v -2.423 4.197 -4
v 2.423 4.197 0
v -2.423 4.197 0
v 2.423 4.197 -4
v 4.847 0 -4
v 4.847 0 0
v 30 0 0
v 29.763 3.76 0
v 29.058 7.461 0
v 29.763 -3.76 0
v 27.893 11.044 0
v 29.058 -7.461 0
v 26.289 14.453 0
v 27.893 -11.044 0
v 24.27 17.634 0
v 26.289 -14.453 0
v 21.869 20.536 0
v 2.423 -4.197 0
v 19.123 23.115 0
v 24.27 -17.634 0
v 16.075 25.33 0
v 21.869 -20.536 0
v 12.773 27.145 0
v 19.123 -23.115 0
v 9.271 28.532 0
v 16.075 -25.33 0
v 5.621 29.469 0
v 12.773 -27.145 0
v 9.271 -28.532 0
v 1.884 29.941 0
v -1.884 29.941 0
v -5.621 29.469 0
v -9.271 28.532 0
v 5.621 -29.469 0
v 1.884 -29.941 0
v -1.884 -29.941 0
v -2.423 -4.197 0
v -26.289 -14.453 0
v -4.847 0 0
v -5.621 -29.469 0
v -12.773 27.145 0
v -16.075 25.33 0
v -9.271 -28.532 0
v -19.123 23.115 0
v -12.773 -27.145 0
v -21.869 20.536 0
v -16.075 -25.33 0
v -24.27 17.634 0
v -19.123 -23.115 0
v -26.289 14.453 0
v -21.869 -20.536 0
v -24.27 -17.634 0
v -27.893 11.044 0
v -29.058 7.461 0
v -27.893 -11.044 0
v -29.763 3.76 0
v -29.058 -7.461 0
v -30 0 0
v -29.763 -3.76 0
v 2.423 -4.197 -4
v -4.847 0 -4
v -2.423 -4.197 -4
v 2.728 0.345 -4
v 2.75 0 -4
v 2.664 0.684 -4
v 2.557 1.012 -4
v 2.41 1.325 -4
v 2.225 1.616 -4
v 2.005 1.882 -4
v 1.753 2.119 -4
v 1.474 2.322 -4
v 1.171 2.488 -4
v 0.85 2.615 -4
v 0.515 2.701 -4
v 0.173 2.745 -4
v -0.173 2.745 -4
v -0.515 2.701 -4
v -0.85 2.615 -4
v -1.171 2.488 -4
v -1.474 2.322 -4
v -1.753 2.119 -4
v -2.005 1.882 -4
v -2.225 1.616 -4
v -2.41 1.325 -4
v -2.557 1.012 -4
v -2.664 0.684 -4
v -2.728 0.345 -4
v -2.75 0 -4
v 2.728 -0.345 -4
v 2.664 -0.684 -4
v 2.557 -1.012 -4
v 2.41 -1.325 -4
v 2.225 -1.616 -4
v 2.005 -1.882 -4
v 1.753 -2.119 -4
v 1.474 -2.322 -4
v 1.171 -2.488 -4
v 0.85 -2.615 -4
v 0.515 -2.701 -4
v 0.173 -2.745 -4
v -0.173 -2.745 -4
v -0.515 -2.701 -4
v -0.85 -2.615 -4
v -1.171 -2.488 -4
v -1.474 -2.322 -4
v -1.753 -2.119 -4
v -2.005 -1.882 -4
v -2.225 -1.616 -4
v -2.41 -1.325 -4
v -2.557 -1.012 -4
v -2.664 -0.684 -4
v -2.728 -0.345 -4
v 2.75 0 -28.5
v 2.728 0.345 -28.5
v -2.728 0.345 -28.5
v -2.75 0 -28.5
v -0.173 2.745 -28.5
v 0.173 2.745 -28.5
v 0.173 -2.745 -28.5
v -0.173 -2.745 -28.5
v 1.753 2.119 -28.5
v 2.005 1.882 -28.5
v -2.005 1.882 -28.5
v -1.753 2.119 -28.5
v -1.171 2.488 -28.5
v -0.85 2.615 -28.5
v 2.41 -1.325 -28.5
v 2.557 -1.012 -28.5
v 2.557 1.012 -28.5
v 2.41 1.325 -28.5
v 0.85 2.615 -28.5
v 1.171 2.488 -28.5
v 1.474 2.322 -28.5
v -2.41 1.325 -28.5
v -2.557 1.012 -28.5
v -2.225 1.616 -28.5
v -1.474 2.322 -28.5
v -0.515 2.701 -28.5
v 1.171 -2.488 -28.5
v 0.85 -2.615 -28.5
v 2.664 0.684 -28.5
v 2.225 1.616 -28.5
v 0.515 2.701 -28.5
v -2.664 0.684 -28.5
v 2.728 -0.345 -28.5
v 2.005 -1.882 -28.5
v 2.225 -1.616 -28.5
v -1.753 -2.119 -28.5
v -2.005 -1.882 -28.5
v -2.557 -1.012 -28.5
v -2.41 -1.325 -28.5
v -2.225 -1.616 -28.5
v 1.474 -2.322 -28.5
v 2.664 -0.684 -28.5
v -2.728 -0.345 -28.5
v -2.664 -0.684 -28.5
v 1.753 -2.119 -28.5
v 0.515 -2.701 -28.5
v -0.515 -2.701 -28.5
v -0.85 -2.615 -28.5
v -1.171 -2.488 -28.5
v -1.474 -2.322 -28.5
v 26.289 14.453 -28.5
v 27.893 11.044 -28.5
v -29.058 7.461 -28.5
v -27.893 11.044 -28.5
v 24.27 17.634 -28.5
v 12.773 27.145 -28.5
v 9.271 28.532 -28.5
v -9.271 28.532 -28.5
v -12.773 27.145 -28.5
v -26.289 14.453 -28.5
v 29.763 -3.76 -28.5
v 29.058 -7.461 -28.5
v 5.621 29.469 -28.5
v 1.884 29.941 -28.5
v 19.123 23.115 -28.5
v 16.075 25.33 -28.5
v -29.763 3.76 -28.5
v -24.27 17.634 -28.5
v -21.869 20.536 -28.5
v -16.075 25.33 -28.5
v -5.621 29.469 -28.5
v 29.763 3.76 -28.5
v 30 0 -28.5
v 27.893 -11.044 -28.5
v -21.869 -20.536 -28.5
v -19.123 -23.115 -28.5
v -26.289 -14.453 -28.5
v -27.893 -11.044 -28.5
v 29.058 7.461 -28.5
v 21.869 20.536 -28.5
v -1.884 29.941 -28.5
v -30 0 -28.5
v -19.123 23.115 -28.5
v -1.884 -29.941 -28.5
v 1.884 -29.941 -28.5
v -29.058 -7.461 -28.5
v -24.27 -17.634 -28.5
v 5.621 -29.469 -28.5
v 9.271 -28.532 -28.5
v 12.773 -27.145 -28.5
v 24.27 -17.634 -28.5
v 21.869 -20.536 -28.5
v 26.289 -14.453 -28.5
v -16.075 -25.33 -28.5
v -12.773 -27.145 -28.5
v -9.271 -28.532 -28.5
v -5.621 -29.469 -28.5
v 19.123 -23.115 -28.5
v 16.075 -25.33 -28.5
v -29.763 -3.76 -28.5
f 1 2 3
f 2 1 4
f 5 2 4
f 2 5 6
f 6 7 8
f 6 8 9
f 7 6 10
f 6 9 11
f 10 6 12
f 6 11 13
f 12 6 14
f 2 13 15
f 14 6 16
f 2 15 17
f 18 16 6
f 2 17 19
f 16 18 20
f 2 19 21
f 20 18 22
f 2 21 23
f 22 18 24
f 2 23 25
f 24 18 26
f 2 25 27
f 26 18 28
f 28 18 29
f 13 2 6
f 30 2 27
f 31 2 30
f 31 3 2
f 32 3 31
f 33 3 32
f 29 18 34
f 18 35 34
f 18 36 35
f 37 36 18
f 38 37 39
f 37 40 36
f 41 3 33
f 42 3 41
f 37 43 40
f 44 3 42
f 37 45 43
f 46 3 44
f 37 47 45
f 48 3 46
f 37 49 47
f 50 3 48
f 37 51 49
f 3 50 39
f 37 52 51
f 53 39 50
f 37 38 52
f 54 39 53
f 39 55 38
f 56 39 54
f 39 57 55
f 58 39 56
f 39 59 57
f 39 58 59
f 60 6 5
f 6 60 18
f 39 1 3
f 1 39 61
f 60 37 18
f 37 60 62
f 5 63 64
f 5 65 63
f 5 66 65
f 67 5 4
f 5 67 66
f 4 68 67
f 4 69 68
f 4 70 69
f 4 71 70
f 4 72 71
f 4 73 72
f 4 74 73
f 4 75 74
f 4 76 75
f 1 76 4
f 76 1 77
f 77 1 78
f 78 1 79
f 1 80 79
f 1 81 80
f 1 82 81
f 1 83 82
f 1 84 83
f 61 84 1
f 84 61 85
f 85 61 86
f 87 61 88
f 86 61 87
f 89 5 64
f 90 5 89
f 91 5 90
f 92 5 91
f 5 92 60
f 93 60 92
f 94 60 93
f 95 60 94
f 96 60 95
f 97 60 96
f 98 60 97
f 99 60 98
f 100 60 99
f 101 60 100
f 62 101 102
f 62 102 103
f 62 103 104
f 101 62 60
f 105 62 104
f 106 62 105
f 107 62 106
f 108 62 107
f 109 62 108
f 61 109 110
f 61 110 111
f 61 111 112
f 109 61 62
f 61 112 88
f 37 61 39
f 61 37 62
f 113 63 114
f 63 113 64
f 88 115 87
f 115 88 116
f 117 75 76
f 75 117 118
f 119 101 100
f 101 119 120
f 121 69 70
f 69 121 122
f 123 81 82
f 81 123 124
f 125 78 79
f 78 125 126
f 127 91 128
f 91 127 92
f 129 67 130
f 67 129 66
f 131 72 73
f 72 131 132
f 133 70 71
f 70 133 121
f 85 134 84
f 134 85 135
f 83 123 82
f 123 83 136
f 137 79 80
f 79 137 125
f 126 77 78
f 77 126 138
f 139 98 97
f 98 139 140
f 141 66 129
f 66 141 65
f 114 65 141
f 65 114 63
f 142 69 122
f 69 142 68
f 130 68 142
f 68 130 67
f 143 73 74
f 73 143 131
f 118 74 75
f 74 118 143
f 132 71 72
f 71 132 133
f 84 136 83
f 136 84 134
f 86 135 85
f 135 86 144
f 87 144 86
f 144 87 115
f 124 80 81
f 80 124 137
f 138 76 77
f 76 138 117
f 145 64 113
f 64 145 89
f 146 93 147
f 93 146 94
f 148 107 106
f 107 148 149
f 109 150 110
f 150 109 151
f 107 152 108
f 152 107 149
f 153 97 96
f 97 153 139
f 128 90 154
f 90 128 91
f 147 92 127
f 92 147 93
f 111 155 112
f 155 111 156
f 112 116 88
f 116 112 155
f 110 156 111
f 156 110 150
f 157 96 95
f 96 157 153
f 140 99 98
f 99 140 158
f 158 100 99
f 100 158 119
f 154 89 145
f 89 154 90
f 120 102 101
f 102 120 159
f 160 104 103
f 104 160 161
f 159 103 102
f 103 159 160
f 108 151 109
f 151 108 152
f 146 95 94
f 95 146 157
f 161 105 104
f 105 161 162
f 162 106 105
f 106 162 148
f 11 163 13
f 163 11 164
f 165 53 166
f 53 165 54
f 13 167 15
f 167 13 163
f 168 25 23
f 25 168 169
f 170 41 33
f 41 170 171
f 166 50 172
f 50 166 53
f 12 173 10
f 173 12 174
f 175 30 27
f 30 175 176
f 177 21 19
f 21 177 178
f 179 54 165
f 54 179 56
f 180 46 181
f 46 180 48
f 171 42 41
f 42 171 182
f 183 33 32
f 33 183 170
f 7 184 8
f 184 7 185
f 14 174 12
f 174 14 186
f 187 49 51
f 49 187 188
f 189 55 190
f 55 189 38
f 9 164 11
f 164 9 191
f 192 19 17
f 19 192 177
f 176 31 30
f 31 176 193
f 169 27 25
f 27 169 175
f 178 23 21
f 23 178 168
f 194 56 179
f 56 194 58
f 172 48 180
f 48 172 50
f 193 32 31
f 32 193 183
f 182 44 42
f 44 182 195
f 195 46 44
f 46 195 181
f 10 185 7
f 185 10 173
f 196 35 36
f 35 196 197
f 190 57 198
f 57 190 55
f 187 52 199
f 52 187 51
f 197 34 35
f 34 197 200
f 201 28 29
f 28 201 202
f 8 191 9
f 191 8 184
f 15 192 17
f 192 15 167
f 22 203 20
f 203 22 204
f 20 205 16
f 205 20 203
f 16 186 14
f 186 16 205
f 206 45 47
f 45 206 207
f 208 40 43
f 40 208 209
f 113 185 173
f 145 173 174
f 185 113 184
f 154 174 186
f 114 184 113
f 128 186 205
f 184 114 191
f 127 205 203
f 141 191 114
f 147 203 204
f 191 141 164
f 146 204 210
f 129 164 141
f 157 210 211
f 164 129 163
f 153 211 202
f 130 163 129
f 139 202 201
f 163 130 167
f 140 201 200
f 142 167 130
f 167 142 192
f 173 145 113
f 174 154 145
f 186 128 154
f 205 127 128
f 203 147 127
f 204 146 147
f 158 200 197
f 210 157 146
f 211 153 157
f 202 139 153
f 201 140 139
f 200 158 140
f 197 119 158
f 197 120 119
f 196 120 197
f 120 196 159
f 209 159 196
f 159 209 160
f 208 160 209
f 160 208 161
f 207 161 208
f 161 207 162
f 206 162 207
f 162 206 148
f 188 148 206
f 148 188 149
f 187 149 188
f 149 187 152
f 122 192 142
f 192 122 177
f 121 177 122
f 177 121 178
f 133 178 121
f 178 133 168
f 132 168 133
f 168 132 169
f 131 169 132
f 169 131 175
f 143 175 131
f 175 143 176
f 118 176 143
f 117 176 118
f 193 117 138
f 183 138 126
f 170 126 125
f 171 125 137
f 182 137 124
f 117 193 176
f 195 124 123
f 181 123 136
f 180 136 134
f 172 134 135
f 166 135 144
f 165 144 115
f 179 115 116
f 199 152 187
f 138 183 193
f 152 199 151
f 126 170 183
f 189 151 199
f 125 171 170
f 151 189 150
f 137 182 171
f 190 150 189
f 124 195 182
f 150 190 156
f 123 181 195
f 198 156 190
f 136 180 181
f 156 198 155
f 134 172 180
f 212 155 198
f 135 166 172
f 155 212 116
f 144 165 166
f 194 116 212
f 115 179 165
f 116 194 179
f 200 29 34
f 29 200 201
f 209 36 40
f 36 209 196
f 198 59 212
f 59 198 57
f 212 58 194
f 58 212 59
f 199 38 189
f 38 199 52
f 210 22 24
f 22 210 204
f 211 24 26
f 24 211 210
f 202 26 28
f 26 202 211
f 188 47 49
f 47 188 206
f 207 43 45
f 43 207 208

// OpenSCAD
$fn = 50;

difference() {
	union() {
		translate(v = [0, 0, -28.5]) {
			cylinder(h = 28.5, r = 30.0);
		}
	}
	union() {
		translate(v = [0, 0, 0]) {
			rotate(a = [0, 0, 0]) {
				difference() {
					union() {
						translate(v = [0, 0, -4]) {
							linear_extrude(height = 4) {
								polygon(points = [[4.8468, 0.0], [2.4234000000000004, 4.197451927062417], [-2.423399999999999, 4.197451927062417], [-4.8468, 5.935618106107392e-16], [-2.423400000000002, -4.197451927062416], [2.423399999999997, -4.197451927062419]]);
							}
						}
					}
					union();
				}
			}
		}
		#translate(v = [0, 0, -100.0]) {
			cylinder(h = 200, r = 2.75);
		}
	}
}
